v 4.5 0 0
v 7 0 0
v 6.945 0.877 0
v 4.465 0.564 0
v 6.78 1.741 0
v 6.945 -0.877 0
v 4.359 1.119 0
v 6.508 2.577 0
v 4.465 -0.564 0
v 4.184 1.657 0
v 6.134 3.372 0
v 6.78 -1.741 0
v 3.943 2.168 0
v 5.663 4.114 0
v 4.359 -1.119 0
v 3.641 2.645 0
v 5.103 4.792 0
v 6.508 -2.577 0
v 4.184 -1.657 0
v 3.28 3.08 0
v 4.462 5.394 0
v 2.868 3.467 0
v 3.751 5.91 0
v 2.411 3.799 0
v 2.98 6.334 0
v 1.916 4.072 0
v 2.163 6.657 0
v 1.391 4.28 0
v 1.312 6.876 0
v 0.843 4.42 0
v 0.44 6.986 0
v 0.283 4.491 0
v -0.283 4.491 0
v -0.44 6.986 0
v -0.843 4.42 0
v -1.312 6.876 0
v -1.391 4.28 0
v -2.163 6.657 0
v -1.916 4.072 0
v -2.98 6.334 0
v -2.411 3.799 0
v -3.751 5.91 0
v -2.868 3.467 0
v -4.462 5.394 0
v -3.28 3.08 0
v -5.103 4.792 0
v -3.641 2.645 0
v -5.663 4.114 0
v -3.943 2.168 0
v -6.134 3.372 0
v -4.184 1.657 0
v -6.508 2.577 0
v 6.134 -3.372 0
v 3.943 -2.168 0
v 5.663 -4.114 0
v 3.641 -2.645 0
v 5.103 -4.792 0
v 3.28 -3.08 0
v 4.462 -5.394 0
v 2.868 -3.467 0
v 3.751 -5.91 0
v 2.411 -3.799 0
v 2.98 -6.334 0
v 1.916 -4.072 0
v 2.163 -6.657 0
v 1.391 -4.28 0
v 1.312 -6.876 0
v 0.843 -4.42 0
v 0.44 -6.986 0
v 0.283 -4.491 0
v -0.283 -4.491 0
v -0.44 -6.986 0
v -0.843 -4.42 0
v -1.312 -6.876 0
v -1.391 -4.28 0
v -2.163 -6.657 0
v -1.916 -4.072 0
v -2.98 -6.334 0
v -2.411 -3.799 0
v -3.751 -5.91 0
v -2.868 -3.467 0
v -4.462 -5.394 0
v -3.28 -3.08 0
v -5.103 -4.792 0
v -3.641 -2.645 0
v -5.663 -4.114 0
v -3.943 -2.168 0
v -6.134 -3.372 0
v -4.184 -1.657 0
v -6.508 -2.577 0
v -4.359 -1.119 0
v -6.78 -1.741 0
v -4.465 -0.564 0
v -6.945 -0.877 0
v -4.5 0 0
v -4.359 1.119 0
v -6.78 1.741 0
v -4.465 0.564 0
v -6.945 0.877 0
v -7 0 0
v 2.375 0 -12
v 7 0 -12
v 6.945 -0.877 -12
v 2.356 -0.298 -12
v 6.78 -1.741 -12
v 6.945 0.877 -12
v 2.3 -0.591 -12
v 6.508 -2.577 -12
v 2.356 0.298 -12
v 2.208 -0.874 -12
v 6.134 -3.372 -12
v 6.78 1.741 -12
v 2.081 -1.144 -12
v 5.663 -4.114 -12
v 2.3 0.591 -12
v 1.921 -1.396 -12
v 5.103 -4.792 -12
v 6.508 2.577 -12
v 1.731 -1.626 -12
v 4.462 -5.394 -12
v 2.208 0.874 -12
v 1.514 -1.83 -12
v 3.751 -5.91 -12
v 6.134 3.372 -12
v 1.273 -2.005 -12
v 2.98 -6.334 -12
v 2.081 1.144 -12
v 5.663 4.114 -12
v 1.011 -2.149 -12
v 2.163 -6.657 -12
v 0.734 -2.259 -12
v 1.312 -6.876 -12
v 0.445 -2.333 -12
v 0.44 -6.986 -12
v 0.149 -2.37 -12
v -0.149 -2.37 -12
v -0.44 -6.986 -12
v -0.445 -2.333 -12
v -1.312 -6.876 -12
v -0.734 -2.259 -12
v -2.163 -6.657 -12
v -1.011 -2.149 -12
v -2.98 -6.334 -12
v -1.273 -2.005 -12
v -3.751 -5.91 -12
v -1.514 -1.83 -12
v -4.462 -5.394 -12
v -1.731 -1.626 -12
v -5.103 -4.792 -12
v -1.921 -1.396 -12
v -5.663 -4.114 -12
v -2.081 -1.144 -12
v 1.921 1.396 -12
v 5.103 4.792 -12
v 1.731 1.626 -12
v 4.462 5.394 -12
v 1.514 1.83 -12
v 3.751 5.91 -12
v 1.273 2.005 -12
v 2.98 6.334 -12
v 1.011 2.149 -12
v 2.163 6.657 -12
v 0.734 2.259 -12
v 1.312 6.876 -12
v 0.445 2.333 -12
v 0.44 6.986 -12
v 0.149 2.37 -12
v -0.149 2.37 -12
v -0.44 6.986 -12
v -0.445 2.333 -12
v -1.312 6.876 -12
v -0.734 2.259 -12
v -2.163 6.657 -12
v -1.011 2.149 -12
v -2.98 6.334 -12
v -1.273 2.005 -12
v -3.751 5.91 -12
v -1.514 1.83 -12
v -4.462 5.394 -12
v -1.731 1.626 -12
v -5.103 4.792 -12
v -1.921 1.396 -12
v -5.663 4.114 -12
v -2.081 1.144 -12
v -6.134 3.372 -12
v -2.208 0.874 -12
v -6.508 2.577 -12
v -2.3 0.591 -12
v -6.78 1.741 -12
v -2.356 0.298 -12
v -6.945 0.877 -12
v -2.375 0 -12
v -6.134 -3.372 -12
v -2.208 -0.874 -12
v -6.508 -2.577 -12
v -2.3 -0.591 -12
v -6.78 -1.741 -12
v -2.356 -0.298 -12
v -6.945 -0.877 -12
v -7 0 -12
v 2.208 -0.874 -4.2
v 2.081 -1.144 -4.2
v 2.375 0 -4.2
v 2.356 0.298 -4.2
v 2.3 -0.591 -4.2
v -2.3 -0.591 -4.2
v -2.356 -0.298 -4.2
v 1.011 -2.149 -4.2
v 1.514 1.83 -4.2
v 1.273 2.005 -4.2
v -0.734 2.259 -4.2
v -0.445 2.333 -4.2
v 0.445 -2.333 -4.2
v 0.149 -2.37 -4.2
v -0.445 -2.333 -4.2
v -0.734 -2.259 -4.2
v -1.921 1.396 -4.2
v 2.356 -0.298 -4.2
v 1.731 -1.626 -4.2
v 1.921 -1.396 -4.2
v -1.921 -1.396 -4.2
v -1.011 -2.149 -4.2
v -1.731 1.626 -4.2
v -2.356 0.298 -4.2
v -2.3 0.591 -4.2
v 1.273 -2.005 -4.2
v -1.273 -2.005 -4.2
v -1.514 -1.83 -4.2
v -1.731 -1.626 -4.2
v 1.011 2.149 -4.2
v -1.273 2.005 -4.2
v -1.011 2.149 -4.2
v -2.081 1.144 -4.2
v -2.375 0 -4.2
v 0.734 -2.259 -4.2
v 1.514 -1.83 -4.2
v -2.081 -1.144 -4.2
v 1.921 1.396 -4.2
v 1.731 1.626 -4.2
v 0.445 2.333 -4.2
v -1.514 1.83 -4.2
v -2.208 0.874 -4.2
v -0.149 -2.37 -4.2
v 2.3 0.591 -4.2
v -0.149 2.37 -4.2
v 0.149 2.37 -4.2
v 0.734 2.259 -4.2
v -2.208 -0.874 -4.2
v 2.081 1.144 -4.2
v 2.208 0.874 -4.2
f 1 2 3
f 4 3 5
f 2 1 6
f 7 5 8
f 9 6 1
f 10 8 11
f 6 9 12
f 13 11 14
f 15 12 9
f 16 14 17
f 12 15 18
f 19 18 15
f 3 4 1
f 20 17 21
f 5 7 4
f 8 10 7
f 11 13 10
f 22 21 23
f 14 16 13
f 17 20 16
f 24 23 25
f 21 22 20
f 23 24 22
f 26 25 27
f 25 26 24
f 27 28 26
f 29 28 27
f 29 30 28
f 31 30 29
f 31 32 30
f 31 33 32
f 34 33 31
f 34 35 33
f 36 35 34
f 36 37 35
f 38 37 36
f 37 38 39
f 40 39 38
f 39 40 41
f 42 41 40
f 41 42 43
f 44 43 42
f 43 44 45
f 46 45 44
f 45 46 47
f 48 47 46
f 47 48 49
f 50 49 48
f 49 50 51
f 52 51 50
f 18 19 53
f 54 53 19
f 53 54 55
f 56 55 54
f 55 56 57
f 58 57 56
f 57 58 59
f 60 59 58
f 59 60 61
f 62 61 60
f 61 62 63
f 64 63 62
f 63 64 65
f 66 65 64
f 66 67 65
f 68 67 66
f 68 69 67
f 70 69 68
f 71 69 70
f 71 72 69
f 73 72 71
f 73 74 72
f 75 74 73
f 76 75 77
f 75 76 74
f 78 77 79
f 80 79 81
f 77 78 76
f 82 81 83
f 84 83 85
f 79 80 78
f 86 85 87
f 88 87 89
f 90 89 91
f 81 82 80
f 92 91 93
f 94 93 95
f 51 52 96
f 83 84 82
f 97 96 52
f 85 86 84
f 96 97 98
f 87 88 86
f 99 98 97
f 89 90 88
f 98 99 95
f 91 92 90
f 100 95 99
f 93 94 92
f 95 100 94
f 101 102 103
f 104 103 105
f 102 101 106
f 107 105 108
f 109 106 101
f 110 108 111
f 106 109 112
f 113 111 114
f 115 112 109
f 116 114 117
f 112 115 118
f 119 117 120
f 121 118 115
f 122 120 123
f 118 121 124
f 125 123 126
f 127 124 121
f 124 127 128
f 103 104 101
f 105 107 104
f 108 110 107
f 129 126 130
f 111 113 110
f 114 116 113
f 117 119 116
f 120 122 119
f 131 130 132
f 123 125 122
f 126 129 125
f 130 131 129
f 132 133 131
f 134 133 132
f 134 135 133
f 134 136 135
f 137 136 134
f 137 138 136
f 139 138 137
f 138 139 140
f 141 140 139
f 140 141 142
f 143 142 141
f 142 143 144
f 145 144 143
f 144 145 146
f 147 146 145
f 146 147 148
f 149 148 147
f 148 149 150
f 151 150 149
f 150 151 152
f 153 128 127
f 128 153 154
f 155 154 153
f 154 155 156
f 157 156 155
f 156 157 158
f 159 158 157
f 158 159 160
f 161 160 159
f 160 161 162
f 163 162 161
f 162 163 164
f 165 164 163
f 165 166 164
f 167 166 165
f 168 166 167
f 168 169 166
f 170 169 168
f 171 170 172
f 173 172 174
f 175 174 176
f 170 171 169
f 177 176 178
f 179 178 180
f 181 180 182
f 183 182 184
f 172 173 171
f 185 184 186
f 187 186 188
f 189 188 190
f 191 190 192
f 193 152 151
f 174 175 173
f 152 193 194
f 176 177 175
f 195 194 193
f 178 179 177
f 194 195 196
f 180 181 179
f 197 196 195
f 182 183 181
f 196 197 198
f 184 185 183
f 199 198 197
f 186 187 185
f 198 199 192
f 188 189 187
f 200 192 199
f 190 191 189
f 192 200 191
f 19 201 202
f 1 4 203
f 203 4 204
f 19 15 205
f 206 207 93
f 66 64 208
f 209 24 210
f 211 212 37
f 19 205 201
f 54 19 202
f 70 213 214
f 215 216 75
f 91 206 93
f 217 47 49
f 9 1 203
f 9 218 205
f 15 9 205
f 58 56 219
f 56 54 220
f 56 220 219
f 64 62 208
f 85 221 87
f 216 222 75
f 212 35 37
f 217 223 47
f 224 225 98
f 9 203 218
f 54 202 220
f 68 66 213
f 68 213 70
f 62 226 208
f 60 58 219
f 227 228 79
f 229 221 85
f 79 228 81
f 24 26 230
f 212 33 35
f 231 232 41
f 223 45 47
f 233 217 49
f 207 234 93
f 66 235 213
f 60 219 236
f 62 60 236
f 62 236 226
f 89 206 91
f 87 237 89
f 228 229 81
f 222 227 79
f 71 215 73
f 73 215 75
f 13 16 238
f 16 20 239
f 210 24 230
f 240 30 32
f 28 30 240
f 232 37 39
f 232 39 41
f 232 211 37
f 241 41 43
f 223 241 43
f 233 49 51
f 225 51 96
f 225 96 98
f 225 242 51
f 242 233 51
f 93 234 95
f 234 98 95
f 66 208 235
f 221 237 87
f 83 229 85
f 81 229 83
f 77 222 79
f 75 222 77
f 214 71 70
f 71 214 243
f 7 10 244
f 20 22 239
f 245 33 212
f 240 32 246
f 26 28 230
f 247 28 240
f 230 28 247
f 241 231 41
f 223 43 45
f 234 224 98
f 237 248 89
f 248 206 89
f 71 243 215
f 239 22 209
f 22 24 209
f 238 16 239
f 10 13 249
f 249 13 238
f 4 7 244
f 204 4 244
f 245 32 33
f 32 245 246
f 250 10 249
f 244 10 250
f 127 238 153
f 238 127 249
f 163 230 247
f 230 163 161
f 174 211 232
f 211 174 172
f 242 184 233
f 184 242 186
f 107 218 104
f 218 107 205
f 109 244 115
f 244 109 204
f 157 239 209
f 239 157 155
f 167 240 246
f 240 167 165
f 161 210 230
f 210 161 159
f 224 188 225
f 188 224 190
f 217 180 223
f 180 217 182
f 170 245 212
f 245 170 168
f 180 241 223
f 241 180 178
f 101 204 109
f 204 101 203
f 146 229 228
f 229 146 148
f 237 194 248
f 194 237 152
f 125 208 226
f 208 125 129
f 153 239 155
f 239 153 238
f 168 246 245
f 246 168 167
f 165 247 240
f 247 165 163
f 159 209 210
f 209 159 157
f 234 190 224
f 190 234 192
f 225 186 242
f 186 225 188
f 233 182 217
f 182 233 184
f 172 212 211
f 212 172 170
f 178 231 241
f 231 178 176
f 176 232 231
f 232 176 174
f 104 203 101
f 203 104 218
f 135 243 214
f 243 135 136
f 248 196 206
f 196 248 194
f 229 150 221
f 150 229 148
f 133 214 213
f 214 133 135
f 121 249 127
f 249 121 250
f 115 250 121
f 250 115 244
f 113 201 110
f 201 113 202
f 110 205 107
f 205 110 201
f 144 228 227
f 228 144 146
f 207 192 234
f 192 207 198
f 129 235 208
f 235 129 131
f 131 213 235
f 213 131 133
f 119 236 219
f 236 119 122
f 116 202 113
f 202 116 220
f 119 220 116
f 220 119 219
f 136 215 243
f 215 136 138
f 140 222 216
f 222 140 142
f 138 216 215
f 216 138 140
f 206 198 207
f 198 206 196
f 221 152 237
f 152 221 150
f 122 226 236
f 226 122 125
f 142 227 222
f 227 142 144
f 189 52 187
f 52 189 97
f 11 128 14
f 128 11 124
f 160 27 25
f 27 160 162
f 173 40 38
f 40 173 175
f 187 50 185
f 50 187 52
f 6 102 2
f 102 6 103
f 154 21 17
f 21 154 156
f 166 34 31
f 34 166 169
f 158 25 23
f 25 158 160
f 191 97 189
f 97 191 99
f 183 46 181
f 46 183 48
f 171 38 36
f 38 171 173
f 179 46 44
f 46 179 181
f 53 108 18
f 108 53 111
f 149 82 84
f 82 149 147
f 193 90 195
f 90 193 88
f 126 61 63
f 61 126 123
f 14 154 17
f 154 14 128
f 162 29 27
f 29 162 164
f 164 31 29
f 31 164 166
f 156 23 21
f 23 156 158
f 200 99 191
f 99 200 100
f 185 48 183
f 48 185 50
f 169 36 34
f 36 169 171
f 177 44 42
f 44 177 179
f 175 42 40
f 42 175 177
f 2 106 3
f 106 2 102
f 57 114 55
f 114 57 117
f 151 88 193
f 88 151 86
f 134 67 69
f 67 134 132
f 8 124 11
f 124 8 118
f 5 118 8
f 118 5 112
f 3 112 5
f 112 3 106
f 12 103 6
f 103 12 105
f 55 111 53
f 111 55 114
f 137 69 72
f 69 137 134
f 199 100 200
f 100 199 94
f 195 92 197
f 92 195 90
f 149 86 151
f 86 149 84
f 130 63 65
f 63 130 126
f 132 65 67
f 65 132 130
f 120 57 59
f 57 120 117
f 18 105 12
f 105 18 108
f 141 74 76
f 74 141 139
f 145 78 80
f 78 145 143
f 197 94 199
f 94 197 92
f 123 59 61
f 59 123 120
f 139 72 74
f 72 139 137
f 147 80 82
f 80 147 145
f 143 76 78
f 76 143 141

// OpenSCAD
$fn = 50;


difference() {
	union() {
		translate(v = [0, 0, -12.0000000000]) {
			cylinder(h = 12, r = 7.0000000000);
		}
		cylinder(h = 0, r = 10.0000000000);
	}
	union() {
		translate(v = [0, 0, 0]) {
			rotate(a = [0, 0, 0]) {
				difference() {
					union() {
						#translate(v = [0, 0, -12.0000000000]) {
							cylinder(h = 12, r = 2.2500000000);
						}
						#translate(v = [0, 0, -4.2000000000]) {
							cylinder(h = 4.2000000000, r1 = 2.3750000000, r2 = 4.5000000000);
						}
						#translate(v = [0, 0, -12.0000000000]) {
							cylinder(h = 12, r = 2.3750000000);
						}
						#translate(v = [0, 0, -12.0000000000]) {
							cylinder(h = 12, r = 2.2500000000);
						}
					}
					union();
				}
			}
		}
	}
}
